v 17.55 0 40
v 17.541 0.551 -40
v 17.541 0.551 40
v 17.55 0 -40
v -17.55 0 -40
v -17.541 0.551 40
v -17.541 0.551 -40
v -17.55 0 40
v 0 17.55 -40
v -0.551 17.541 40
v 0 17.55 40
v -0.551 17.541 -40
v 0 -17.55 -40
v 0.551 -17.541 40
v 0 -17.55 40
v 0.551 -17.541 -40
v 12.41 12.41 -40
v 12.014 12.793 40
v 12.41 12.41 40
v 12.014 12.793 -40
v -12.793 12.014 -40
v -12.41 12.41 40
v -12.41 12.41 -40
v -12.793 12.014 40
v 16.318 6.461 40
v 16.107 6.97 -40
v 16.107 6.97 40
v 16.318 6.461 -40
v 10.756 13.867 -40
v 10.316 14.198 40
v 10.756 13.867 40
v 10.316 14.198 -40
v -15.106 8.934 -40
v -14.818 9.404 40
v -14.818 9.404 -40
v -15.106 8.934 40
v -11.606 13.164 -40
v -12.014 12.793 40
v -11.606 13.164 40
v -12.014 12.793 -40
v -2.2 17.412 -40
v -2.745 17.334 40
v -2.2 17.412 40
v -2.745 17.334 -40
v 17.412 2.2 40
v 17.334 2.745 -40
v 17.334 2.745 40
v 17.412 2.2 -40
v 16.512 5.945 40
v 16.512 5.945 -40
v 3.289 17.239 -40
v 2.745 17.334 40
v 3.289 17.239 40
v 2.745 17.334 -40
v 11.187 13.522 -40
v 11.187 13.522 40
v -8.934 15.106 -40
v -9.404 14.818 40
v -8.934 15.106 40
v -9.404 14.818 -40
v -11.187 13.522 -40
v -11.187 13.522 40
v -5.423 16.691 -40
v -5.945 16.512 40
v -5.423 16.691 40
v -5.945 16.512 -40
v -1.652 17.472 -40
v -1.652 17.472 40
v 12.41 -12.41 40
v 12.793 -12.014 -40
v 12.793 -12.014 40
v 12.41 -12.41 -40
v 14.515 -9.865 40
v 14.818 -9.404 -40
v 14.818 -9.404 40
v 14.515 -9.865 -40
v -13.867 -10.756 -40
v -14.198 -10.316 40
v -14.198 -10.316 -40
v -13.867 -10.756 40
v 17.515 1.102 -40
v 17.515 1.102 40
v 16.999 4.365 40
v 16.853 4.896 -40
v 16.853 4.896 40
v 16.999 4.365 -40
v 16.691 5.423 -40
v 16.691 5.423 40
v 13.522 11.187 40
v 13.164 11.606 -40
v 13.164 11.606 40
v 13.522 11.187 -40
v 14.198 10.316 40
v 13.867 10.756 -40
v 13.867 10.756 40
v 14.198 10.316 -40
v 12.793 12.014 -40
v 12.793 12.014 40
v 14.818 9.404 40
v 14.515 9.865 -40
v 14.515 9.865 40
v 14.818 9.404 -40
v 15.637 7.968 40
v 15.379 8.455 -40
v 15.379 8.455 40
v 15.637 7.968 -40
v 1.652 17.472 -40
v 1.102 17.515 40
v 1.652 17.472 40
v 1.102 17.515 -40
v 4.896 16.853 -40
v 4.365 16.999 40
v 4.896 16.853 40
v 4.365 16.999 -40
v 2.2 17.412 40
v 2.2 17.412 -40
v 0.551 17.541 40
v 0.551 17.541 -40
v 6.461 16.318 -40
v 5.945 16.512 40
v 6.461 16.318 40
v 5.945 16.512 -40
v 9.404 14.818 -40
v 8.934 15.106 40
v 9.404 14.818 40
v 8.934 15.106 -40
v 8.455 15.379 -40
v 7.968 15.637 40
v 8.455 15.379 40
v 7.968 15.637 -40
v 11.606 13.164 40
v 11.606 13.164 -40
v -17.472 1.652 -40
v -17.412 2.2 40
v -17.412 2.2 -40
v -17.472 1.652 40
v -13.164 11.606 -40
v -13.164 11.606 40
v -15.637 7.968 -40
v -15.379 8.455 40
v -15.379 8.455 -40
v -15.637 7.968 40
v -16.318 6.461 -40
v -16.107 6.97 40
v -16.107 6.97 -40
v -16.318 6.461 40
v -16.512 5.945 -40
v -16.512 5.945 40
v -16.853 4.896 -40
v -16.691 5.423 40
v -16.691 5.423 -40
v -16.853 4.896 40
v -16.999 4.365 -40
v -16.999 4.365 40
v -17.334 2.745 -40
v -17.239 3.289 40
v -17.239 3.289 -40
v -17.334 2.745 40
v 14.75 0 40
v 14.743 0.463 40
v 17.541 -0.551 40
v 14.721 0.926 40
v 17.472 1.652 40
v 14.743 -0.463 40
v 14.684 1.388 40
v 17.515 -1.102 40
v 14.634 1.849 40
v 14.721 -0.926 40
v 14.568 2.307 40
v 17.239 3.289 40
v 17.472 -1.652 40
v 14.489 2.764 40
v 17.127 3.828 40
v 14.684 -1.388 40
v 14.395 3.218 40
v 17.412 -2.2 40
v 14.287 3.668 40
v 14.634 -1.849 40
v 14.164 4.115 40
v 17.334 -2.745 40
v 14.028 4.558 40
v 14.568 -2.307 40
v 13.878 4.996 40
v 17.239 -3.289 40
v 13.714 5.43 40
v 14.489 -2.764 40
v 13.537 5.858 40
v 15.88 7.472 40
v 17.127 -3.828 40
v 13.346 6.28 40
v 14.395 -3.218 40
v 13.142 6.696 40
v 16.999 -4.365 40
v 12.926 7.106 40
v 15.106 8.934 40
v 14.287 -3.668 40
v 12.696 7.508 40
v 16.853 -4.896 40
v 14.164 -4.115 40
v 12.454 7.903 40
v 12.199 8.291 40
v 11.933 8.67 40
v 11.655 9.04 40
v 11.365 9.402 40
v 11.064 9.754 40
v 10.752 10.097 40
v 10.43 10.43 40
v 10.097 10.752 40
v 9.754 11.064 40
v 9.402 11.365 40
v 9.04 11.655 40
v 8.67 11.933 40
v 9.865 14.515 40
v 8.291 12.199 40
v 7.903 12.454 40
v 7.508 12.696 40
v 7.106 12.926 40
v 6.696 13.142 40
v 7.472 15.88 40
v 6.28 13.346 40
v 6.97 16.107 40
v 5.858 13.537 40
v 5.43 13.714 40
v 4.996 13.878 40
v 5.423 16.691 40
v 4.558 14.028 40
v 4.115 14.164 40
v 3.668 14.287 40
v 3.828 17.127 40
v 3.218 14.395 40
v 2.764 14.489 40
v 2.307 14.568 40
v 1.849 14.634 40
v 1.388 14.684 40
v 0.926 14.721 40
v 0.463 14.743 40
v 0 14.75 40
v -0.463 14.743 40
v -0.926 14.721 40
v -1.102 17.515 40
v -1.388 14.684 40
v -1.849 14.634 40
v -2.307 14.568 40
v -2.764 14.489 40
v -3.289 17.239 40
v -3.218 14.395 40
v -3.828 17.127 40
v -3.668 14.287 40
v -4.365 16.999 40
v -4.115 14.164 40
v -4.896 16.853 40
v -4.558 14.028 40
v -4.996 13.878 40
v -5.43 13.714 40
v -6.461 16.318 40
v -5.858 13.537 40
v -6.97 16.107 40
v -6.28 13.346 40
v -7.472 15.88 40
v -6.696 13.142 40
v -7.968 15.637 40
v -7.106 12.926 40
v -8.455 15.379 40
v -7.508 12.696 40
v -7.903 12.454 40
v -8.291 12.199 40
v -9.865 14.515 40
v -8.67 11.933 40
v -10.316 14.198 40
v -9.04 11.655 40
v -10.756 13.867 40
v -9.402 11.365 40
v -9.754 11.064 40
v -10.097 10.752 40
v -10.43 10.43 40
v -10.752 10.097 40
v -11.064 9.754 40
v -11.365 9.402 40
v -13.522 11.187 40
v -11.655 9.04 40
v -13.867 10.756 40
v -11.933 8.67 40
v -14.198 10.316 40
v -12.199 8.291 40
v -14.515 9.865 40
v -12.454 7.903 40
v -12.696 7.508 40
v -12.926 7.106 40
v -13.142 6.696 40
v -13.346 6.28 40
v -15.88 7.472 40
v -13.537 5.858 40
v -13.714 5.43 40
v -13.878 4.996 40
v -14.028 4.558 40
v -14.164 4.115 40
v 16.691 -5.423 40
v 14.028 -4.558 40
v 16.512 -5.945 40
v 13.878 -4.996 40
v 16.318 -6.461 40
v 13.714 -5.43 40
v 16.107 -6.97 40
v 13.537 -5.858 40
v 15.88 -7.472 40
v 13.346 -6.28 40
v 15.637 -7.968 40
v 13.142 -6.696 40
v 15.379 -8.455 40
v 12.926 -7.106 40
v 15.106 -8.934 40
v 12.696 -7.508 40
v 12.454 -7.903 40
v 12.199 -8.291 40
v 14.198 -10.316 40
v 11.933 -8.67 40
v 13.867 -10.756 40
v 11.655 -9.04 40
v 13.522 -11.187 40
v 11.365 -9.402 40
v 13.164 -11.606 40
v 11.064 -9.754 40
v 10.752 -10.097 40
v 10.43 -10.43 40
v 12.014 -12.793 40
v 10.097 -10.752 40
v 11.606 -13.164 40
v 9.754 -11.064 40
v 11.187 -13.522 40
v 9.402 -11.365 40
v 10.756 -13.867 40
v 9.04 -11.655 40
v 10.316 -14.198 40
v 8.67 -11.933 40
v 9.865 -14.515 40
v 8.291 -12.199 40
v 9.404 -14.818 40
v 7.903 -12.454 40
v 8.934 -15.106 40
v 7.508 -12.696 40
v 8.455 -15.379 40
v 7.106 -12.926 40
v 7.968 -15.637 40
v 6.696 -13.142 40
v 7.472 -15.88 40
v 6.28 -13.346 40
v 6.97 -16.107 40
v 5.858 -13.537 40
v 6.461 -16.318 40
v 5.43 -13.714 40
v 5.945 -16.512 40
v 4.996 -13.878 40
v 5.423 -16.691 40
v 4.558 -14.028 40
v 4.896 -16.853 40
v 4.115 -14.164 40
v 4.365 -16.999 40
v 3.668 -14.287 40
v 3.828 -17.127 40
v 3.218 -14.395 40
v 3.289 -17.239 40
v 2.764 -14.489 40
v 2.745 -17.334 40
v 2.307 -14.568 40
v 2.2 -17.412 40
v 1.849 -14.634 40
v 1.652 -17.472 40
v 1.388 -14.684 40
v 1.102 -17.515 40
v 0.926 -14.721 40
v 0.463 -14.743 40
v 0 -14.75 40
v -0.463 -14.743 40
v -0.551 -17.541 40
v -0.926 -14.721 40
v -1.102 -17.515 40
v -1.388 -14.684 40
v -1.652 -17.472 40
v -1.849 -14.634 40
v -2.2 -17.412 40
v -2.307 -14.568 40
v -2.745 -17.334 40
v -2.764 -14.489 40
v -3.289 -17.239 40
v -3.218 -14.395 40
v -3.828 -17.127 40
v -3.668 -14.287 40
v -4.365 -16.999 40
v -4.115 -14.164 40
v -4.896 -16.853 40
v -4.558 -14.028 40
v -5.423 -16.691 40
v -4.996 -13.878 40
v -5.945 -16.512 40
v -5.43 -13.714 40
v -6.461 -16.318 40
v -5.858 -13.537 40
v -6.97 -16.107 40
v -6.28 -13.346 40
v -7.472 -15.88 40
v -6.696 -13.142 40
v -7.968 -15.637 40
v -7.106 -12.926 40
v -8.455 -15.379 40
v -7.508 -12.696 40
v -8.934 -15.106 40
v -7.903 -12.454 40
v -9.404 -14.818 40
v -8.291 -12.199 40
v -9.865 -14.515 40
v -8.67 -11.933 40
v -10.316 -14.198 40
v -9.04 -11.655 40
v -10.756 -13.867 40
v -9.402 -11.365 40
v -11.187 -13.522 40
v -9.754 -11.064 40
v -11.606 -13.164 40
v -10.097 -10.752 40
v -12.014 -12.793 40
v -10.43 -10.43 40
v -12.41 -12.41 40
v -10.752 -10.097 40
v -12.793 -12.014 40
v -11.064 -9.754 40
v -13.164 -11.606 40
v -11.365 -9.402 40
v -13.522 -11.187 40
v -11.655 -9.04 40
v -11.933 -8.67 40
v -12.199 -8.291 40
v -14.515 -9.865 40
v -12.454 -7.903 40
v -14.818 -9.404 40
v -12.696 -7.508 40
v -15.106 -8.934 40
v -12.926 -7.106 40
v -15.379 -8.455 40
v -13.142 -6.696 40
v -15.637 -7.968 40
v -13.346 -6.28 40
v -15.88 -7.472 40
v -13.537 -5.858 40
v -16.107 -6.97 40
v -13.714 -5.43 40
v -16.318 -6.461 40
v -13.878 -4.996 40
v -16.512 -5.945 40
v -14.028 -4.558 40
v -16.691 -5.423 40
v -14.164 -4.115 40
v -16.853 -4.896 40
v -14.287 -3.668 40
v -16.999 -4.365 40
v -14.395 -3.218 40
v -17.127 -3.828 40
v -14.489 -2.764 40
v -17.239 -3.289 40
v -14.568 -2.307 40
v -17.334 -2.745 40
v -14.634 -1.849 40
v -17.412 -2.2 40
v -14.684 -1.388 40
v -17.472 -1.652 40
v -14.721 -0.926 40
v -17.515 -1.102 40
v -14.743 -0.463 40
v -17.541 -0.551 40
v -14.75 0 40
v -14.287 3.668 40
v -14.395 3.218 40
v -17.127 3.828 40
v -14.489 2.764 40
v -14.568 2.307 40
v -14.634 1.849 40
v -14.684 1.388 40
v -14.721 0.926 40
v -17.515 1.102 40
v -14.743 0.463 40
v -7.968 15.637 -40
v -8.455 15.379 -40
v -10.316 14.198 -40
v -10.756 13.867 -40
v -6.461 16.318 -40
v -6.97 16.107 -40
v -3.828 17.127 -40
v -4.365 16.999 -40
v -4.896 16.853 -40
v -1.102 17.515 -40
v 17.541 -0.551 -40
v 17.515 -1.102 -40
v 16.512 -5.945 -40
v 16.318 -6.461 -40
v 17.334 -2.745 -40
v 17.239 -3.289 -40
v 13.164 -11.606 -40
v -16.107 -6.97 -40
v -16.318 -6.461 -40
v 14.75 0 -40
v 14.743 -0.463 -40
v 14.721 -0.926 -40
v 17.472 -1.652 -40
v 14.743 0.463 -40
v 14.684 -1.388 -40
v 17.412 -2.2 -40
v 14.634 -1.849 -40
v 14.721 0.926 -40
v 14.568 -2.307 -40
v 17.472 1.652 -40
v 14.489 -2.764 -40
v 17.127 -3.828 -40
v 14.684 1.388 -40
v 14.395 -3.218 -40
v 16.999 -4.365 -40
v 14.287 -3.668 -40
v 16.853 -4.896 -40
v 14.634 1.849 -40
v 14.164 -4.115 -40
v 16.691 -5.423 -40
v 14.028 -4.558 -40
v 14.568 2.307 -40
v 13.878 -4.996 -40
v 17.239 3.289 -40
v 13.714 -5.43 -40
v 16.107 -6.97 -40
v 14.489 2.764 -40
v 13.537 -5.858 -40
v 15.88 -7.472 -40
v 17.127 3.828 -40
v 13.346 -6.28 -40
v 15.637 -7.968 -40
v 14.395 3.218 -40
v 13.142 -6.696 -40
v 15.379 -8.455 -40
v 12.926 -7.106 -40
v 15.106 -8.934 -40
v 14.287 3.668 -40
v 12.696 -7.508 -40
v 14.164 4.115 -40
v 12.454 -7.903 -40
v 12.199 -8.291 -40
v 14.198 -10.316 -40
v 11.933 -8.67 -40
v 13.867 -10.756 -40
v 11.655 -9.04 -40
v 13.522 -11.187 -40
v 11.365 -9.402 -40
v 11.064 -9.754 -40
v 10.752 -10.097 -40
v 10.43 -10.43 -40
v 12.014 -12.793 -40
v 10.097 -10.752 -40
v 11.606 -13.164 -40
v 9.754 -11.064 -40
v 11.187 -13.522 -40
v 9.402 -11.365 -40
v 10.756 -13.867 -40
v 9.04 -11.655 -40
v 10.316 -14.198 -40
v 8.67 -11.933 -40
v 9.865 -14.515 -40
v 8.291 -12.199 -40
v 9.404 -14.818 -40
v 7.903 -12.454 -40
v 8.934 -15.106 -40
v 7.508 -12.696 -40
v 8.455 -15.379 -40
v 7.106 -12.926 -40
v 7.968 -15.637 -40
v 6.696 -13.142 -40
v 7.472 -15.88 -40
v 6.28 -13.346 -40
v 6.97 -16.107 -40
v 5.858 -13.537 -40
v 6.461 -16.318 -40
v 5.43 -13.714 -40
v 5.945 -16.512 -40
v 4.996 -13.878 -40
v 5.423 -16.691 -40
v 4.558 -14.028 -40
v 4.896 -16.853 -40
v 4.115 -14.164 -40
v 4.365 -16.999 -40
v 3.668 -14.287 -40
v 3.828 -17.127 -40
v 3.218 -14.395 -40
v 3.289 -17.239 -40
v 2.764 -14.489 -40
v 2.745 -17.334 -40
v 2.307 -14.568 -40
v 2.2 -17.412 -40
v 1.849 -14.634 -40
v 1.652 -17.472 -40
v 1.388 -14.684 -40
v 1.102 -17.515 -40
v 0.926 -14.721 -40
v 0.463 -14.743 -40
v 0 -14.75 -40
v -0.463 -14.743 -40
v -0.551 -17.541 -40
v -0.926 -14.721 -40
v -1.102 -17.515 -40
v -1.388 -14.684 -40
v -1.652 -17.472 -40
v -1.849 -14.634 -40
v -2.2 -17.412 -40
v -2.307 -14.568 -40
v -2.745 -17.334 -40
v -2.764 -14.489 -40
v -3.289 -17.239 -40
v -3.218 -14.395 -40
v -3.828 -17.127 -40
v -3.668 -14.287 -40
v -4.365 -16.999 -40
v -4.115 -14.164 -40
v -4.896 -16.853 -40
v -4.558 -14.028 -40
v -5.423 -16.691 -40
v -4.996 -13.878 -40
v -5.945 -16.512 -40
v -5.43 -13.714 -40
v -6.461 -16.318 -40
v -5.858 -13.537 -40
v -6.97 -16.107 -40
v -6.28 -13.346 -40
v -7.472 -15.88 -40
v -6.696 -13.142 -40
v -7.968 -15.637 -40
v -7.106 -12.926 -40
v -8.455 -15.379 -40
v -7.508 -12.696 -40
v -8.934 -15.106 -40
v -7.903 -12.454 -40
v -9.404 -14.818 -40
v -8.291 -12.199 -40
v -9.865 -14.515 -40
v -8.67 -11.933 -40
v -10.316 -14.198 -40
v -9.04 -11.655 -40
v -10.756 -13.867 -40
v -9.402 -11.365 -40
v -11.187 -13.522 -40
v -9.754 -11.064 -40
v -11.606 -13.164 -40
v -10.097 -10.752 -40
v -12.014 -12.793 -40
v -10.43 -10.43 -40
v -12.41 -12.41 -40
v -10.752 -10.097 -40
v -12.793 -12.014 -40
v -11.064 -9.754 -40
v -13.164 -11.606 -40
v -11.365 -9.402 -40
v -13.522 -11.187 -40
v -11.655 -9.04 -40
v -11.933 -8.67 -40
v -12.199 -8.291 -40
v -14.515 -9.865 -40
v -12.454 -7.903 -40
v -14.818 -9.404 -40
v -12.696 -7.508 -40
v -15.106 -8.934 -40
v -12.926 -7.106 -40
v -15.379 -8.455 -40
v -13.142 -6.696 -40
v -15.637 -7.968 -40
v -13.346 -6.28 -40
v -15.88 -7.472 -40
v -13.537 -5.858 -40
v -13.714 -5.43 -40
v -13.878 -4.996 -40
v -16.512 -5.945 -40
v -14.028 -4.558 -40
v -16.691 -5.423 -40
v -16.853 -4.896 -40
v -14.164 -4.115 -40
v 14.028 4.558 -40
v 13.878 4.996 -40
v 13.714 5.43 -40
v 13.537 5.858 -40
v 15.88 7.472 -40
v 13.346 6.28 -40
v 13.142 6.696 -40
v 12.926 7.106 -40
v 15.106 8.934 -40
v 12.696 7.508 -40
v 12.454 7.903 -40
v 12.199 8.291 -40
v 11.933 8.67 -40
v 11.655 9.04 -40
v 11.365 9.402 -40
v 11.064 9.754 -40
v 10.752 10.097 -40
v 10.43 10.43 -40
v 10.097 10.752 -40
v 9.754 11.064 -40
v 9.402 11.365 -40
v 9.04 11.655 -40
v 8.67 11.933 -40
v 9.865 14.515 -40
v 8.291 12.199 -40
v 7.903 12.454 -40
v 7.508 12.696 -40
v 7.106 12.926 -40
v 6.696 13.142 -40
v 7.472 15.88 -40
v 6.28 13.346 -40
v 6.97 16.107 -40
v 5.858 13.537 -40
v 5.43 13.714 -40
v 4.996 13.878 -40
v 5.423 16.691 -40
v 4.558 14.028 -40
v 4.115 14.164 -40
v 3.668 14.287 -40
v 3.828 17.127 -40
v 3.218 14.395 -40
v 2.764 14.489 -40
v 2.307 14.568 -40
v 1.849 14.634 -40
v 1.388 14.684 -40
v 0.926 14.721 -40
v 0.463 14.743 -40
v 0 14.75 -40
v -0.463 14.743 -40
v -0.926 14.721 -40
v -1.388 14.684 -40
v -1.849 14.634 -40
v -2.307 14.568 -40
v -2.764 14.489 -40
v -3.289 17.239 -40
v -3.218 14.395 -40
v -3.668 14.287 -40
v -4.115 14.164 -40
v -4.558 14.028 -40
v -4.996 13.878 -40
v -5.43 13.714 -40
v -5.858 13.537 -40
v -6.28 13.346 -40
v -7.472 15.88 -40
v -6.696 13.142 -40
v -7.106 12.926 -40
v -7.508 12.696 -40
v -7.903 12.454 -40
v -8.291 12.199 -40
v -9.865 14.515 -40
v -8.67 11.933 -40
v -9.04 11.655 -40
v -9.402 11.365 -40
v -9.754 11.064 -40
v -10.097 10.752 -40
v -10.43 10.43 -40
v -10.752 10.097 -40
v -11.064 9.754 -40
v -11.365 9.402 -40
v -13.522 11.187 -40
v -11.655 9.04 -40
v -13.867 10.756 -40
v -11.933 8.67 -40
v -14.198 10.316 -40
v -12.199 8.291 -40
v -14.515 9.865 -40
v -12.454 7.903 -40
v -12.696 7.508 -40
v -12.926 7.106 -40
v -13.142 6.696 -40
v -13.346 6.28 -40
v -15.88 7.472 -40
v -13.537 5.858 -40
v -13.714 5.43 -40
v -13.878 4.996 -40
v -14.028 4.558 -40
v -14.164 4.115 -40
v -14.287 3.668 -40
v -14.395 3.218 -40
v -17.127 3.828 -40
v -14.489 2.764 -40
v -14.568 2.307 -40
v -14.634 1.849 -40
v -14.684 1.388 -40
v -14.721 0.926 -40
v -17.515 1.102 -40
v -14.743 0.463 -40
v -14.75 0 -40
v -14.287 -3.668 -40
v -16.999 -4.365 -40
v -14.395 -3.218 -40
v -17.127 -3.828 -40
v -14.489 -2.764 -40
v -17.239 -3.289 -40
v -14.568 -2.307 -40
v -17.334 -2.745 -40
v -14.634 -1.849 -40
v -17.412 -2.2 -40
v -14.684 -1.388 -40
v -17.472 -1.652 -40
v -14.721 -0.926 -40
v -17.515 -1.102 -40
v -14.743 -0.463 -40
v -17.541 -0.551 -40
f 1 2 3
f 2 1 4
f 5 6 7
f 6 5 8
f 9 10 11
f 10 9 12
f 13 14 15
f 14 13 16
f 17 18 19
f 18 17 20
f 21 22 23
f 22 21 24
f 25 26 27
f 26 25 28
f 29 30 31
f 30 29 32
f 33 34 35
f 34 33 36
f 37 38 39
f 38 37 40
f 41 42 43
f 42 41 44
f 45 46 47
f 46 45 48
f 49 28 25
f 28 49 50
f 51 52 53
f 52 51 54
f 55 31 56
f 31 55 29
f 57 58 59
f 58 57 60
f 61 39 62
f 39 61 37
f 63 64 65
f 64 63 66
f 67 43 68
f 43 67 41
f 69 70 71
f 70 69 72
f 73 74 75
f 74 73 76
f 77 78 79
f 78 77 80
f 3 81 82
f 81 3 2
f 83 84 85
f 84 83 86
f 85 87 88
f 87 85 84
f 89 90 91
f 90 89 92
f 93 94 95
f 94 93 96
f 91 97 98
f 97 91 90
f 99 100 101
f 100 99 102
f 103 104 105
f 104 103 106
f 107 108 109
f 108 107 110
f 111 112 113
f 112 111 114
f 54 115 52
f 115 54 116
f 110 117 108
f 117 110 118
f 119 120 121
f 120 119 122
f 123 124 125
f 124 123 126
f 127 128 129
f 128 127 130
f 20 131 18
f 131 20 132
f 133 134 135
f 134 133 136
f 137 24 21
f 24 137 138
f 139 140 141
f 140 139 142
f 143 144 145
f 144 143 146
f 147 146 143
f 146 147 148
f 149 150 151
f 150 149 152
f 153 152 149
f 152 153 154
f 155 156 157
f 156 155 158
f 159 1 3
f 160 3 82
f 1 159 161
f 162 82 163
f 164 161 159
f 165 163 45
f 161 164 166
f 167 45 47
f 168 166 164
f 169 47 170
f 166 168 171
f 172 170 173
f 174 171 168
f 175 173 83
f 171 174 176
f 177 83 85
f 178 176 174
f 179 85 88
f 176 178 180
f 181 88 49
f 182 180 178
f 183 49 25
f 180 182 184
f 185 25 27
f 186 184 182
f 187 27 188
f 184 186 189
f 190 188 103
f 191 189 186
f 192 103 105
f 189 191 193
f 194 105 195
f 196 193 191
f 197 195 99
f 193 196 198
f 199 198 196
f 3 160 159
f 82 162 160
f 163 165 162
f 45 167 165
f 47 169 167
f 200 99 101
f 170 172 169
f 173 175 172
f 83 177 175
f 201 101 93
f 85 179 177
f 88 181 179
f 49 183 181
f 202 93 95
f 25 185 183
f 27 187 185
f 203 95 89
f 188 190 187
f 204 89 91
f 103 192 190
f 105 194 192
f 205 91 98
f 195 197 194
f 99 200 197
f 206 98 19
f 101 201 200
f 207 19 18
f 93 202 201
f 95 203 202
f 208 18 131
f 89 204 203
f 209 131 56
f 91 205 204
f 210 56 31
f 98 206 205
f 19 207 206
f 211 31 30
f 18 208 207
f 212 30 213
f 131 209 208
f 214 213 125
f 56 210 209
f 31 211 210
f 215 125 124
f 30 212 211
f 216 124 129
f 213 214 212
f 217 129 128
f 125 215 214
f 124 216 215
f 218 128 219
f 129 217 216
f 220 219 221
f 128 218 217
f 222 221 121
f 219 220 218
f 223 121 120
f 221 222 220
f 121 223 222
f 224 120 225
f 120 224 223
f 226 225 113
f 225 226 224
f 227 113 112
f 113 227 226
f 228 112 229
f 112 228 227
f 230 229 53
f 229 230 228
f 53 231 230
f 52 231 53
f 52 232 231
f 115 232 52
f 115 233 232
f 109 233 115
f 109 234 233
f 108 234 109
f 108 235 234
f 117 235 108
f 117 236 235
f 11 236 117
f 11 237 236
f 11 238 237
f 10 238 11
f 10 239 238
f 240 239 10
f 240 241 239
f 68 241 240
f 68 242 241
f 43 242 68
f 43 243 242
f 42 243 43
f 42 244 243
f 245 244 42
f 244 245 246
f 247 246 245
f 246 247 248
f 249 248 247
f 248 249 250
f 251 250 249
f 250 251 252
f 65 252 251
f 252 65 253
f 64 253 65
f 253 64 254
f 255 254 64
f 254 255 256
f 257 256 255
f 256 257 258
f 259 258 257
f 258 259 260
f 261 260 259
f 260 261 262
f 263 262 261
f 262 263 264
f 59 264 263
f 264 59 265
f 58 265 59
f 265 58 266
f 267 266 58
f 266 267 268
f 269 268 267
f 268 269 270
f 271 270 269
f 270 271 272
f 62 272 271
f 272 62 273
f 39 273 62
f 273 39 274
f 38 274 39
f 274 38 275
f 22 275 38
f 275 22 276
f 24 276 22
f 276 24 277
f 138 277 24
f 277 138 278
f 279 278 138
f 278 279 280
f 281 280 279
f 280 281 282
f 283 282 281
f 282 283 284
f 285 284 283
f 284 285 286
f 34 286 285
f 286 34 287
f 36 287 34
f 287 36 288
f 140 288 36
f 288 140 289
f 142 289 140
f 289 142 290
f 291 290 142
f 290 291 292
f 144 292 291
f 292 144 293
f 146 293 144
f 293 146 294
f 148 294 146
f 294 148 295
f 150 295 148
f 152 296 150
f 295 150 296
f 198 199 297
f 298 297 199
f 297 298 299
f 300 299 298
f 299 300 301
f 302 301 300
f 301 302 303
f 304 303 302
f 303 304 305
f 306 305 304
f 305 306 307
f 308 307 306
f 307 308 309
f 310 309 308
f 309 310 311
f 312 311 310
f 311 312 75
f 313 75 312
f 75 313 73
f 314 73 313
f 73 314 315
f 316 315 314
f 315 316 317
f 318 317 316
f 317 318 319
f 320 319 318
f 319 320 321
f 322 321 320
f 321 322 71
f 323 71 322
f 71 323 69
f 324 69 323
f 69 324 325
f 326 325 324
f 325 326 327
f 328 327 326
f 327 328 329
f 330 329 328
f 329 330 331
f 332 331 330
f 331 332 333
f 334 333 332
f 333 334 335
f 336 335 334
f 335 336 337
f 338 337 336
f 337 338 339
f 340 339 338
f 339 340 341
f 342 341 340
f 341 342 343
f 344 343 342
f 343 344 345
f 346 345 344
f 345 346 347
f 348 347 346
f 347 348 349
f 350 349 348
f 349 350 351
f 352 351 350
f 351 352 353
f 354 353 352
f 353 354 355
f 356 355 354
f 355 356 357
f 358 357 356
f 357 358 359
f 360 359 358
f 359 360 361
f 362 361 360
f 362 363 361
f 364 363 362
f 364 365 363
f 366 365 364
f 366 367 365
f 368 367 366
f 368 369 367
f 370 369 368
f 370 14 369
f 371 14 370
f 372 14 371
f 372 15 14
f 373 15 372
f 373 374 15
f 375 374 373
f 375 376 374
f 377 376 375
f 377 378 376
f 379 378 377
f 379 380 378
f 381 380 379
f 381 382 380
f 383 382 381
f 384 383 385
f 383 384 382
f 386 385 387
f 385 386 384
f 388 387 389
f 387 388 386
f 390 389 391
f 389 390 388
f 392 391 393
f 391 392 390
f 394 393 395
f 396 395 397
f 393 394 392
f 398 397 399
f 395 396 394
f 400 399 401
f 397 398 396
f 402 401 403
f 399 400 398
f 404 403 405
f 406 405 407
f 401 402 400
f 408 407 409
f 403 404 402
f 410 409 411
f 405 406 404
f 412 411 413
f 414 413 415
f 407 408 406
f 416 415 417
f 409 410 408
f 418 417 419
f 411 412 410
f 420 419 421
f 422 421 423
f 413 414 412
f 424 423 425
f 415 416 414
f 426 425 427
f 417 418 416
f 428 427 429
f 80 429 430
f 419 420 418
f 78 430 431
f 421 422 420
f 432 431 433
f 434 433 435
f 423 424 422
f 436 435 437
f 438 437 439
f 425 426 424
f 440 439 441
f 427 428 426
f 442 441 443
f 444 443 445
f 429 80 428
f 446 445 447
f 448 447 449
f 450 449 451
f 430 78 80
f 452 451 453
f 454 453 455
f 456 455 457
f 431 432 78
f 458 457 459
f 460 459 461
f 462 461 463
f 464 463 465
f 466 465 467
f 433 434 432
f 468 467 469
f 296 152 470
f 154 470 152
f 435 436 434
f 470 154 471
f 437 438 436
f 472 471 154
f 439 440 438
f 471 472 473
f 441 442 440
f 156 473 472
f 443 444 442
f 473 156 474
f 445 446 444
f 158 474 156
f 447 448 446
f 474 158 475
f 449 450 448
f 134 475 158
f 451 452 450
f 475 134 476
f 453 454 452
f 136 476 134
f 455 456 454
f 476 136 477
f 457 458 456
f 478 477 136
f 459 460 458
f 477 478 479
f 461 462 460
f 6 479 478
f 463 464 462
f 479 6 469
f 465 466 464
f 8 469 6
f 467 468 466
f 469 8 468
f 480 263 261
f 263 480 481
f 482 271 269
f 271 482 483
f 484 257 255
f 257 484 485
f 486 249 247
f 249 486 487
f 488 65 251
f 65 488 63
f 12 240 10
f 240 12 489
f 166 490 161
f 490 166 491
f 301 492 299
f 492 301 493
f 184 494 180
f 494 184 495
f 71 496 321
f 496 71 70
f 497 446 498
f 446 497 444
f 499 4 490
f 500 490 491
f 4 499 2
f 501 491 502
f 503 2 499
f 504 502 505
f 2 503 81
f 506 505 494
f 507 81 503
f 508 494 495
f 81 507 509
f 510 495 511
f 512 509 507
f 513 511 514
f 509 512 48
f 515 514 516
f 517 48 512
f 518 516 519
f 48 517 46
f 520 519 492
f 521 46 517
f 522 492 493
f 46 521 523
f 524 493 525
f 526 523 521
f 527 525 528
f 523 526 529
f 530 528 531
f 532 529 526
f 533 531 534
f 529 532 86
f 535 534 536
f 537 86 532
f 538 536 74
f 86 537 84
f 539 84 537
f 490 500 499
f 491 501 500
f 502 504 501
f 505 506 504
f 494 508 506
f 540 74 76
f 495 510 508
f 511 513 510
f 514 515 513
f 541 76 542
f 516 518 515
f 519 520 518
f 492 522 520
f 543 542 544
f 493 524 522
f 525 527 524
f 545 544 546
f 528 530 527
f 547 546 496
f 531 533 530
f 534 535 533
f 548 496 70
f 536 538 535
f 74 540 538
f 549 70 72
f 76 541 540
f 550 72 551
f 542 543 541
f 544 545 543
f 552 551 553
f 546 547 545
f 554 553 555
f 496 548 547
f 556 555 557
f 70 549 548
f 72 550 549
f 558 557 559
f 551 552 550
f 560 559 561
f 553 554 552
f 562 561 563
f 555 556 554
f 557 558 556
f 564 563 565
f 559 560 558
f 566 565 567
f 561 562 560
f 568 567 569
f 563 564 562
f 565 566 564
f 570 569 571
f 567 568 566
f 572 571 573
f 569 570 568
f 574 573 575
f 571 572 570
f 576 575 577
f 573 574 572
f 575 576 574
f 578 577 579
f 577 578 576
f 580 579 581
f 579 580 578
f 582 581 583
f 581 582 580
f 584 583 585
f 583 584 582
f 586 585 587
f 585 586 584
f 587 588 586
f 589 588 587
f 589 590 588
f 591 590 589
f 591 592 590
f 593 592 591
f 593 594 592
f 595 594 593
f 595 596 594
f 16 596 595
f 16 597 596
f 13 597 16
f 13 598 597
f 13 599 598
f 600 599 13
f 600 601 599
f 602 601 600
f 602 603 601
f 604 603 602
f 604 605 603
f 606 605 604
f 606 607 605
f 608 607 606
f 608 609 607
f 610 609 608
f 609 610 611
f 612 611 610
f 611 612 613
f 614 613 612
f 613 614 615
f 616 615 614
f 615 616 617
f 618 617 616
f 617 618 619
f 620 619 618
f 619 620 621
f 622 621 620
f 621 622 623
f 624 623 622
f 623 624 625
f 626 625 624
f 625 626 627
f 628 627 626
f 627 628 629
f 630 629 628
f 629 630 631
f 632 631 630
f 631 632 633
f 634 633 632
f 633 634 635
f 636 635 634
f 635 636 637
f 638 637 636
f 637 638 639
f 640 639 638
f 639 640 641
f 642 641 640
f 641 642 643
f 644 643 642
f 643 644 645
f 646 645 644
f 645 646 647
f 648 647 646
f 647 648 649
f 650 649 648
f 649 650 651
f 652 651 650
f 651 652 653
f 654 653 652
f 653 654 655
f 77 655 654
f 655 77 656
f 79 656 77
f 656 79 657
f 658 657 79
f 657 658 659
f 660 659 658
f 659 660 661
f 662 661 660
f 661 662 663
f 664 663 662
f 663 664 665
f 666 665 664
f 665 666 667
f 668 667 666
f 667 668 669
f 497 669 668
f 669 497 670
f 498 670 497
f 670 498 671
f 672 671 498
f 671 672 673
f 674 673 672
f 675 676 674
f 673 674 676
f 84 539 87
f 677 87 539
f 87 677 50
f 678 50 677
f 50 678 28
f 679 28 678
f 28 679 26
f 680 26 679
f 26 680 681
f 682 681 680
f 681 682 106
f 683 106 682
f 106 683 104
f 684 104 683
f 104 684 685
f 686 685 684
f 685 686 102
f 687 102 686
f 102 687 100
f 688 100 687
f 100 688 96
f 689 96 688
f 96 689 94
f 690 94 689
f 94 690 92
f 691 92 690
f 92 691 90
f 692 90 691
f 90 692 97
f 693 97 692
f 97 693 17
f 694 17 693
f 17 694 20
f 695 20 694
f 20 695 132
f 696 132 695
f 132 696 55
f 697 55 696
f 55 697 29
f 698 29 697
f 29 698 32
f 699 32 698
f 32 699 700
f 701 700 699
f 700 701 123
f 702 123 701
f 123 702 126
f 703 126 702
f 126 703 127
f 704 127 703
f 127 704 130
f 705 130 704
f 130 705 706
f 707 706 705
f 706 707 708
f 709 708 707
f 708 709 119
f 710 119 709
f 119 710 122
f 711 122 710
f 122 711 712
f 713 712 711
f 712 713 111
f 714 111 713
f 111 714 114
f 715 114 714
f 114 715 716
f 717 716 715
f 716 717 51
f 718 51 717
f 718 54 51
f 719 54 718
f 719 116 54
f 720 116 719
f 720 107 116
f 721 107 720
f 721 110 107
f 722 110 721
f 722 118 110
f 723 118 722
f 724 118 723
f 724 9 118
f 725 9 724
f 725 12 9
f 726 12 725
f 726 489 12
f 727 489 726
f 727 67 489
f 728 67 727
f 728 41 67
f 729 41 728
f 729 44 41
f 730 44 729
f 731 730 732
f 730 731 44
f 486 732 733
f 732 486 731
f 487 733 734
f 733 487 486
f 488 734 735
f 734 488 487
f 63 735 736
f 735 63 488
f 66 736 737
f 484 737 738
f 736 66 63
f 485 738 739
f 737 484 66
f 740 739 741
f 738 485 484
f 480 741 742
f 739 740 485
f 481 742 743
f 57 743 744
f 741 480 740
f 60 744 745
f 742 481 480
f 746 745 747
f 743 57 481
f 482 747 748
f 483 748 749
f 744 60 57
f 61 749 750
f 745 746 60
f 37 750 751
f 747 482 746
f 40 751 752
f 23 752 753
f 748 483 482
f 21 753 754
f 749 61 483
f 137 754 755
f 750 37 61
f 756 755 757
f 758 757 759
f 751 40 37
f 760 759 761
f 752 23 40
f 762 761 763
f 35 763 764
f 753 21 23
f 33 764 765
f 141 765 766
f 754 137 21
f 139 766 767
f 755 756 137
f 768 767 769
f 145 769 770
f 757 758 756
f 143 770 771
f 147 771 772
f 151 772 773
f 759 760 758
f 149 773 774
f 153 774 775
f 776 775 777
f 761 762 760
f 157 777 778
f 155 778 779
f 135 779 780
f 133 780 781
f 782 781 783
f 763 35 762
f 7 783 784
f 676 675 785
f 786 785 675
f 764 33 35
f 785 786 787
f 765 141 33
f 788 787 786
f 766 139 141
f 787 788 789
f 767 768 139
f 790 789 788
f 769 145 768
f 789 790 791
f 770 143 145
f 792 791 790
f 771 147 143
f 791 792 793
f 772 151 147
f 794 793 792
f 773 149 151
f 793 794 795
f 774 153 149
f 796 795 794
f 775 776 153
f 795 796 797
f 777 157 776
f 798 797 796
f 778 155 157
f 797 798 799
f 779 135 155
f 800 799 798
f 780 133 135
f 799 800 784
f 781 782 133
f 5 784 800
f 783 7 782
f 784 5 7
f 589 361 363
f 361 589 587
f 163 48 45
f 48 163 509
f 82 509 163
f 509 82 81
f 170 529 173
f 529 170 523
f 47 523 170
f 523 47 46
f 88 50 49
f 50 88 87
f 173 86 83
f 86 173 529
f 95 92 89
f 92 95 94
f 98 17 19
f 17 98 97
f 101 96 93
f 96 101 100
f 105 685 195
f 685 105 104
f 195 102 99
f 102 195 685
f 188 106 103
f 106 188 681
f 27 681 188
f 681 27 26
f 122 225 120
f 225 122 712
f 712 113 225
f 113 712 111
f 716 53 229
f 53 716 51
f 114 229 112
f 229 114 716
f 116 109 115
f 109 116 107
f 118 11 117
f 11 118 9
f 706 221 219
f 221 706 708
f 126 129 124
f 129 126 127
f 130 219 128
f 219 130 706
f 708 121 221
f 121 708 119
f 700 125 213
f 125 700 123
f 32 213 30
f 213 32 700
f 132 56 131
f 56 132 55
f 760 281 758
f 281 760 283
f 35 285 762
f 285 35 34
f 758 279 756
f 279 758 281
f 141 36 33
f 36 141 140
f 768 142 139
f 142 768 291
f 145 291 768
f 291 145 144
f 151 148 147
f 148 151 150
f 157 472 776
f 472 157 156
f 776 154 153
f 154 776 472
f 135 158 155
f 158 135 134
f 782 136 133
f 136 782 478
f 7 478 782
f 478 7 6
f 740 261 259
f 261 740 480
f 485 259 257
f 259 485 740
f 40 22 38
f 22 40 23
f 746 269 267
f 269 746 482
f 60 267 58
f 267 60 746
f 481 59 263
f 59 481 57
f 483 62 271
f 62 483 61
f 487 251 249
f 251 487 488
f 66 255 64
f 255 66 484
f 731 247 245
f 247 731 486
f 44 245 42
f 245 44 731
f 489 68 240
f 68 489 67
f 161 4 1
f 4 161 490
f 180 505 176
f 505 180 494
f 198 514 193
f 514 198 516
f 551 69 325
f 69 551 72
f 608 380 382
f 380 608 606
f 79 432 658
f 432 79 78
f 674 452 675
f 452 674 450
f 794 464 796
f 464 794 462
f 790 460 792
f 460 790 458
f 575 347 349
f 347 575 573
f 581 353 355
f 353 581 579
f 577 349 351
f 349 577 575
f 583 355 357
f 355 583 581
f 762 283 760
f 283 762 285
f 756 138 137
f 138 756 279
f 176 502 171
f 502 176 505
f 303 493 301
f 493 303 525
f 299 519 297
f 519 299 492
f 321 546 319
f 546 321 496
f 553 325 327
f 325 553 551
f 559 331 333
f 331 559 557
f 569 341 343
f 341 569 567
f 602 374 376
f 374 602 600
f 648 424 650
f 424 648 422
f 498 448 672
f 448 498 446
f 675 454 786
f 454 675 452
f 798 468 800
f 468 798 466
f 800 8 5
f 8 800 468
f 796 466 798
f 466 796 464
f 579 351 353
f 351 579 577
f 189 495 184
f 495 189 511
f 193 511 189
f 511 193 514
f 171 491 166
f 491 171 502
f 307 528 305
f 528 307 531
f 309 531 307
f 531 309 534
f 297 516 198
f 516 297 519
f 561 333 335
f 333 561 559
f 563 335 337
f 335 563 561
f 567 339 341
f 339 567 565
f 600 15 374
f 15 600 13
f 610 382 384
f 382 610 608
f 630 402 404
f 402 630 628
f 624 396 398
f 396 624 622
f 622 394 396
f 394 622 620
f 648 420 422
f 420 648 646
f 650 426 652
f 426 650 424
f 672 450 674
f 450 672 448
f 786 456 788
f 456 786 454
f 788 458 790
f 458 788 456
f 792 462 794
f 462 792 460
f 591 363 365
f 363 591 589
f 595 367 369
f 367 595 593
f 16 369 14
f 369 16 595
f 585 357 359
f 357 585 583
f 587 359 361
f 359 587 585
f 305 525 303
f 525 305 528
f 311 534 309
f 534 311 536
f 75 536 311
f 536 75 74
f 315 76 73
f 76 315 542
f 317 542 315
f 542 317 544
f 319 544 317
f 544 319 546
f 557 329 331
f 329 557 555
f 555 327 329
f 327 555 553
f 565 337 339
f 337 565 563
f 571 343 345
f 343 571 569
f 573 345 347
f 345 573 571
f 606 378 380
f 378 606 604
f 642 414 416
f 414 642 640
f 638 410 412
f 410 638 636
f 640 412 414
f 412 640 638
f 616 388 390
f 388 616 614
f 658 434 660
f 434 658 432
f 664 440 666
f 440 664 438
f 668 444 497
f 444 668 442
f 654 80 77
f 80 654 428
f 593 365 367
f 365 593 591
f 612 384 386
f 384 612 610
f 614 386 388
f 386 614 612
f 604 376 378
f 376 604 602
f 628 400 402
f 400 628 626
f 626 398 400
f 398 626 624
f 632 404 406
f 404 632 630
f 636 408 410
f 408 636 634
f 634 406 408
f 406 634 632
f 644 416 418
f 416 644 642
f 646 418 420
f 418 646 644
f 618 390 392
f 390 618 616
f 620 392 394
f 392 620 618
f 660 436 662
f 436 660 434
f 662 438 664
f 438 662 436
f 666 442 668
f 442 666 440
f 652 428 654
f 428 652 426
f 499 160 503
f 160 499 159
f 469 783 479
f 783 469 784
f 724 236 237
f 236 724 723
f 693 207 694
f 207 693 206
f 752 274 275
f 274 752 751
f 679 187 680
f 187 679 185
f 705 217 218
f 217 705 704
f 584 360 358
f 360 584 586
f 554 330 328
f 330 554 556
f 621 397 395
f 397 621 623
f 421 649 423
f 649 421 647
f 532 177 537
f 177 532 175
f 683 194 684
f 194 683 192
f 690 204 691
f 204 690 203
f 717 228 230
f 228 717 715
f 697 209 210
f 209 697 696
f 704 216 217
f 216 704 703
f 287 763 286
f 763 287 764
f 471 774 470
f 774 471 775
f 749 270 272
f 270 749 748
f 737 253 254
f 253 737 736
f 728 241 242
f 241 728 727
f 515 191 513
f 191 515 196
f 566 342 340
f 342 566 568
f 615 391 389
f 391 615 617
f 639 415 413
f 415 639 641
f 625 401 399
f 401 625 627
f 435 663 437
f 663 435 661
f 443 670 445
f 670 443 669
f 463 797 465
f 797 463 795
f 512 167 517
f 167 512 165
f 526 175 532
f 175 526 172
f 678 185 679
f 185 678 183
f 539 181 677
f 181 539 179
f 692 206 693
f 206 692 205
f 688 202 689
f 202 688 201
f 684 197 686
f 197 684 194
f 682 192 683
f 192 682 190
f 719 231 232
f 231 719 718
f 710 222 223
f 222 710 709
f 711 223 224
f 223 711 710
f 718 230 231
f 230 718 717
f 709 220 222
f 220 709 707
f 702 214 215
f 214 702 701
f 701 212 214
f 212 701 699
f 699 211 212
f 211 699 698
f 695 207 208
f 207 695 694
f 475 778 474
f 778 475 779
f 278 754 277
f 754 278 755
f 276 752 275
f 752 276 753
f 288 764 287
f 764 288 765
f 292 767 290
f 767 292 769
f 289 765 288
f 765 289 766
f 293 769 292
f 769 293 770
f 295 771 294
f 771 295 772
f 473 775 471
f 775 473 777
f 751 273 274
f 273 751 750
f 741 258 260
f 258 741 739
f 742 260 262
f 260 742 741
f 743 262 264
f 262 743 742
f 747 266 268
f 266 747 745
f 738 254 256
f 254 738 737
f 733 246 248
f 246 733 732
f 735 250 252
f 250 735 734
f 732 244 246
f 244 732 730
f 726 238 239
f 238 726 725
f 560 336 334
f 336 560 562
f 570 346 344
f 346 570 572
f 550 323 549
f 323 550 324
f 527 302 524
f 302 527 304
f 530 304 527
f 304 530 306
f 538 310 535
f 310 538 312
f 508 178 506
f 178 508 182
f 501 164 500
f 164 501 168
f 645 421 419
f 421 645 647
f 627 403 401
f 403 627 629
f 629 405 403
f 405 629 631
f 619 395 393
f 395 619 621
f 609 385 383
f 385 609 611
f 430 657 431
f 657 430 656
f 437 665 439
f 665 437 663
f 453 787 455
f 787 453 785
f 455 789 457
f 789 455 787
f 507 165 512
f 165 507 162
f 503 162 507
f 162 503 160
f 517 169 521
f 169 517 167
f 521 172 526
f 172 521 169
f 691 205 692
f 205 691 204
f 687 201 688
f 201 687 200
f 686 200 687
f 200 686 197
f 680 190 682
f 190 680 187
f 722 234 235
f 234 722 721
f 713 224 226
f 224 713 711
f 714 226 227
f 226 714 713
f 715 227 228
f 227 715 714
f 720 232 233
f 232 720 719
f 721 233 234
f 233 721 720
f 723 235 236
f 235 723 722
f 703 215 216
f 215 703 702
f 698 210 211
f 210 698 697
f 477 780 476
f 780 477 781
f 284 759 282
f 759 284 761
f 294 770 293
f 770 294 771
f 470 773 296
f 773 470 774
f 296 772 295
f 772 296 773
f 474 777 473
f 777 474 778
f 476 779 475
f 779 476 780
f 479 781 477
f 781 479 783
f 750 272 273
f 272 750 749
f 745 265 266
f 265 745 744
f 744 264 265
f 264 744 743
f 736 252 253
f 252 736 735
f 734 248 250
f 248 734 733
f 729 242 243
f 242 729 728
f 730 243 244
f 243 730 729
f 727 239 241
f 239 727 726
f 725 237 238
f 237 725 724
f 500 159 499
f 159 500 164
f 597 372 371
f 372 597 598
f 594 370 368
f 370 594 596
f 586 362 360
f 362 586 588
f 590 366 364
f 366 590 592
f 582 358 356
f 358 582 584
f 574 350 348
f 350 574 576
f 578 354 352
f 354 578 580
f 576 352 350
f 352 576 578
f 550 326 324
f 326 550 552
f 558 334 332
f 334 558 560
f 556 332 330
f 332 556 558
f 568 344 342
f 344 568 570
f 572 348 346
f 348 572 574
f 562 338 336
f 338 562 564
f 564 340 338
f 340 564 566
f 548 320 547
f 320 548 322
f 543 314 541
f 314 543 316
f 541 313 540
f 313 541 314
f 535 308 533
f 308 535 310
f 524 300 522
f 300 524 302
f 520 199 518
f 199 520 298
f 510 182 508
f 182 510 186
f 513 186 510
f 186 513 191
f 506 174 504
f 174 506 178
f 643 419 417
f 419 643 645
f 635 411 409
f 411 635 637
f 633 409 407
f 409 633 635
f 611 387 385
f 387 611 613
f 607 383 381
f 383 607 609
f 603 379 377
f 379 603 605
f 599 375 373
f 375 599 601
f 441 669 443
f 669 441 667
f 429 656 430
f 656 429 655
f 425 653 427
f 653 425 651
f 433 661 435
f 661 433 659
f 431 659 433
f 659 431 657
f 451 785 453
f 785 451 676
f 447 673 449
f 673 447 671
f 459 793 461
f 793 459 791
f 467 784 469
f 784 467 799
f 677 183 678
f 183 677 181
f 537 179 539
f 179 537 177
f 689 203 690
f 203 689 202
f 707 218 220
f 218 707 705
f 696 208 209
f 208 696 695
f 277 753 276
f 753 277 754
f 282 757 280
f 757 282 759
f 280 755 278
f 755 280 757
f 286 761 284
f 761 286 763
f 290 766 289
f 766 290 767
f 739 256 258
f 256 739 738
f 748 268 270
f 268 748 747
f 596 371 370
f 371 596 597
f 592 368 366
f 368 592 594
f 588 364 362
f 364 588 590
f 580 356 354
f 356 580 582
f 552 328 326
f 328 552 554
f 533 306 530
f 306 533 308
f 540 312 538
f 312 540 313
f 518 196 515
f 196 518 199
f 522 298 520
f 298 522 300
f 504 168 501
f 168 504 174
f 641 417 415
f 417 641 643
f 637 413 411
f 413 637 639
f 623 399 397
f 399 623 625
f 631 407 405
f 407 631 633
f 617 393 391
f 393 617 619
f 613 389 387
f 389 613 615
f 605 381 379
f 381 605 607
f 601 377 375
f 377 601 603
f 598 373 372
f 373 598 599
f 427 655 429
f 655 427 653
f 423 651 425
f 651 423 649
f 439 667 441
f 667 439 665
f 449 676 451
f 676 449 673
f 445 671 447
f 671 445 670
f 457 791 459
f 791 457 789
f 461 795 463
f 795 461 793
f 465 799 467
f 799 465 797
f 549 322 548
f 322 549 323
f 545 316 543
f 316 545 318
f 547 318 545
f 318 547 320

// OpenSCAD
$fn=200;

d1=35.1;
d2=29.5;//29
h=80;

difference(){
    cylinder(h,r=d1/2, center = true);
    cylinder(h,r=d2/2, center = true);  
}
